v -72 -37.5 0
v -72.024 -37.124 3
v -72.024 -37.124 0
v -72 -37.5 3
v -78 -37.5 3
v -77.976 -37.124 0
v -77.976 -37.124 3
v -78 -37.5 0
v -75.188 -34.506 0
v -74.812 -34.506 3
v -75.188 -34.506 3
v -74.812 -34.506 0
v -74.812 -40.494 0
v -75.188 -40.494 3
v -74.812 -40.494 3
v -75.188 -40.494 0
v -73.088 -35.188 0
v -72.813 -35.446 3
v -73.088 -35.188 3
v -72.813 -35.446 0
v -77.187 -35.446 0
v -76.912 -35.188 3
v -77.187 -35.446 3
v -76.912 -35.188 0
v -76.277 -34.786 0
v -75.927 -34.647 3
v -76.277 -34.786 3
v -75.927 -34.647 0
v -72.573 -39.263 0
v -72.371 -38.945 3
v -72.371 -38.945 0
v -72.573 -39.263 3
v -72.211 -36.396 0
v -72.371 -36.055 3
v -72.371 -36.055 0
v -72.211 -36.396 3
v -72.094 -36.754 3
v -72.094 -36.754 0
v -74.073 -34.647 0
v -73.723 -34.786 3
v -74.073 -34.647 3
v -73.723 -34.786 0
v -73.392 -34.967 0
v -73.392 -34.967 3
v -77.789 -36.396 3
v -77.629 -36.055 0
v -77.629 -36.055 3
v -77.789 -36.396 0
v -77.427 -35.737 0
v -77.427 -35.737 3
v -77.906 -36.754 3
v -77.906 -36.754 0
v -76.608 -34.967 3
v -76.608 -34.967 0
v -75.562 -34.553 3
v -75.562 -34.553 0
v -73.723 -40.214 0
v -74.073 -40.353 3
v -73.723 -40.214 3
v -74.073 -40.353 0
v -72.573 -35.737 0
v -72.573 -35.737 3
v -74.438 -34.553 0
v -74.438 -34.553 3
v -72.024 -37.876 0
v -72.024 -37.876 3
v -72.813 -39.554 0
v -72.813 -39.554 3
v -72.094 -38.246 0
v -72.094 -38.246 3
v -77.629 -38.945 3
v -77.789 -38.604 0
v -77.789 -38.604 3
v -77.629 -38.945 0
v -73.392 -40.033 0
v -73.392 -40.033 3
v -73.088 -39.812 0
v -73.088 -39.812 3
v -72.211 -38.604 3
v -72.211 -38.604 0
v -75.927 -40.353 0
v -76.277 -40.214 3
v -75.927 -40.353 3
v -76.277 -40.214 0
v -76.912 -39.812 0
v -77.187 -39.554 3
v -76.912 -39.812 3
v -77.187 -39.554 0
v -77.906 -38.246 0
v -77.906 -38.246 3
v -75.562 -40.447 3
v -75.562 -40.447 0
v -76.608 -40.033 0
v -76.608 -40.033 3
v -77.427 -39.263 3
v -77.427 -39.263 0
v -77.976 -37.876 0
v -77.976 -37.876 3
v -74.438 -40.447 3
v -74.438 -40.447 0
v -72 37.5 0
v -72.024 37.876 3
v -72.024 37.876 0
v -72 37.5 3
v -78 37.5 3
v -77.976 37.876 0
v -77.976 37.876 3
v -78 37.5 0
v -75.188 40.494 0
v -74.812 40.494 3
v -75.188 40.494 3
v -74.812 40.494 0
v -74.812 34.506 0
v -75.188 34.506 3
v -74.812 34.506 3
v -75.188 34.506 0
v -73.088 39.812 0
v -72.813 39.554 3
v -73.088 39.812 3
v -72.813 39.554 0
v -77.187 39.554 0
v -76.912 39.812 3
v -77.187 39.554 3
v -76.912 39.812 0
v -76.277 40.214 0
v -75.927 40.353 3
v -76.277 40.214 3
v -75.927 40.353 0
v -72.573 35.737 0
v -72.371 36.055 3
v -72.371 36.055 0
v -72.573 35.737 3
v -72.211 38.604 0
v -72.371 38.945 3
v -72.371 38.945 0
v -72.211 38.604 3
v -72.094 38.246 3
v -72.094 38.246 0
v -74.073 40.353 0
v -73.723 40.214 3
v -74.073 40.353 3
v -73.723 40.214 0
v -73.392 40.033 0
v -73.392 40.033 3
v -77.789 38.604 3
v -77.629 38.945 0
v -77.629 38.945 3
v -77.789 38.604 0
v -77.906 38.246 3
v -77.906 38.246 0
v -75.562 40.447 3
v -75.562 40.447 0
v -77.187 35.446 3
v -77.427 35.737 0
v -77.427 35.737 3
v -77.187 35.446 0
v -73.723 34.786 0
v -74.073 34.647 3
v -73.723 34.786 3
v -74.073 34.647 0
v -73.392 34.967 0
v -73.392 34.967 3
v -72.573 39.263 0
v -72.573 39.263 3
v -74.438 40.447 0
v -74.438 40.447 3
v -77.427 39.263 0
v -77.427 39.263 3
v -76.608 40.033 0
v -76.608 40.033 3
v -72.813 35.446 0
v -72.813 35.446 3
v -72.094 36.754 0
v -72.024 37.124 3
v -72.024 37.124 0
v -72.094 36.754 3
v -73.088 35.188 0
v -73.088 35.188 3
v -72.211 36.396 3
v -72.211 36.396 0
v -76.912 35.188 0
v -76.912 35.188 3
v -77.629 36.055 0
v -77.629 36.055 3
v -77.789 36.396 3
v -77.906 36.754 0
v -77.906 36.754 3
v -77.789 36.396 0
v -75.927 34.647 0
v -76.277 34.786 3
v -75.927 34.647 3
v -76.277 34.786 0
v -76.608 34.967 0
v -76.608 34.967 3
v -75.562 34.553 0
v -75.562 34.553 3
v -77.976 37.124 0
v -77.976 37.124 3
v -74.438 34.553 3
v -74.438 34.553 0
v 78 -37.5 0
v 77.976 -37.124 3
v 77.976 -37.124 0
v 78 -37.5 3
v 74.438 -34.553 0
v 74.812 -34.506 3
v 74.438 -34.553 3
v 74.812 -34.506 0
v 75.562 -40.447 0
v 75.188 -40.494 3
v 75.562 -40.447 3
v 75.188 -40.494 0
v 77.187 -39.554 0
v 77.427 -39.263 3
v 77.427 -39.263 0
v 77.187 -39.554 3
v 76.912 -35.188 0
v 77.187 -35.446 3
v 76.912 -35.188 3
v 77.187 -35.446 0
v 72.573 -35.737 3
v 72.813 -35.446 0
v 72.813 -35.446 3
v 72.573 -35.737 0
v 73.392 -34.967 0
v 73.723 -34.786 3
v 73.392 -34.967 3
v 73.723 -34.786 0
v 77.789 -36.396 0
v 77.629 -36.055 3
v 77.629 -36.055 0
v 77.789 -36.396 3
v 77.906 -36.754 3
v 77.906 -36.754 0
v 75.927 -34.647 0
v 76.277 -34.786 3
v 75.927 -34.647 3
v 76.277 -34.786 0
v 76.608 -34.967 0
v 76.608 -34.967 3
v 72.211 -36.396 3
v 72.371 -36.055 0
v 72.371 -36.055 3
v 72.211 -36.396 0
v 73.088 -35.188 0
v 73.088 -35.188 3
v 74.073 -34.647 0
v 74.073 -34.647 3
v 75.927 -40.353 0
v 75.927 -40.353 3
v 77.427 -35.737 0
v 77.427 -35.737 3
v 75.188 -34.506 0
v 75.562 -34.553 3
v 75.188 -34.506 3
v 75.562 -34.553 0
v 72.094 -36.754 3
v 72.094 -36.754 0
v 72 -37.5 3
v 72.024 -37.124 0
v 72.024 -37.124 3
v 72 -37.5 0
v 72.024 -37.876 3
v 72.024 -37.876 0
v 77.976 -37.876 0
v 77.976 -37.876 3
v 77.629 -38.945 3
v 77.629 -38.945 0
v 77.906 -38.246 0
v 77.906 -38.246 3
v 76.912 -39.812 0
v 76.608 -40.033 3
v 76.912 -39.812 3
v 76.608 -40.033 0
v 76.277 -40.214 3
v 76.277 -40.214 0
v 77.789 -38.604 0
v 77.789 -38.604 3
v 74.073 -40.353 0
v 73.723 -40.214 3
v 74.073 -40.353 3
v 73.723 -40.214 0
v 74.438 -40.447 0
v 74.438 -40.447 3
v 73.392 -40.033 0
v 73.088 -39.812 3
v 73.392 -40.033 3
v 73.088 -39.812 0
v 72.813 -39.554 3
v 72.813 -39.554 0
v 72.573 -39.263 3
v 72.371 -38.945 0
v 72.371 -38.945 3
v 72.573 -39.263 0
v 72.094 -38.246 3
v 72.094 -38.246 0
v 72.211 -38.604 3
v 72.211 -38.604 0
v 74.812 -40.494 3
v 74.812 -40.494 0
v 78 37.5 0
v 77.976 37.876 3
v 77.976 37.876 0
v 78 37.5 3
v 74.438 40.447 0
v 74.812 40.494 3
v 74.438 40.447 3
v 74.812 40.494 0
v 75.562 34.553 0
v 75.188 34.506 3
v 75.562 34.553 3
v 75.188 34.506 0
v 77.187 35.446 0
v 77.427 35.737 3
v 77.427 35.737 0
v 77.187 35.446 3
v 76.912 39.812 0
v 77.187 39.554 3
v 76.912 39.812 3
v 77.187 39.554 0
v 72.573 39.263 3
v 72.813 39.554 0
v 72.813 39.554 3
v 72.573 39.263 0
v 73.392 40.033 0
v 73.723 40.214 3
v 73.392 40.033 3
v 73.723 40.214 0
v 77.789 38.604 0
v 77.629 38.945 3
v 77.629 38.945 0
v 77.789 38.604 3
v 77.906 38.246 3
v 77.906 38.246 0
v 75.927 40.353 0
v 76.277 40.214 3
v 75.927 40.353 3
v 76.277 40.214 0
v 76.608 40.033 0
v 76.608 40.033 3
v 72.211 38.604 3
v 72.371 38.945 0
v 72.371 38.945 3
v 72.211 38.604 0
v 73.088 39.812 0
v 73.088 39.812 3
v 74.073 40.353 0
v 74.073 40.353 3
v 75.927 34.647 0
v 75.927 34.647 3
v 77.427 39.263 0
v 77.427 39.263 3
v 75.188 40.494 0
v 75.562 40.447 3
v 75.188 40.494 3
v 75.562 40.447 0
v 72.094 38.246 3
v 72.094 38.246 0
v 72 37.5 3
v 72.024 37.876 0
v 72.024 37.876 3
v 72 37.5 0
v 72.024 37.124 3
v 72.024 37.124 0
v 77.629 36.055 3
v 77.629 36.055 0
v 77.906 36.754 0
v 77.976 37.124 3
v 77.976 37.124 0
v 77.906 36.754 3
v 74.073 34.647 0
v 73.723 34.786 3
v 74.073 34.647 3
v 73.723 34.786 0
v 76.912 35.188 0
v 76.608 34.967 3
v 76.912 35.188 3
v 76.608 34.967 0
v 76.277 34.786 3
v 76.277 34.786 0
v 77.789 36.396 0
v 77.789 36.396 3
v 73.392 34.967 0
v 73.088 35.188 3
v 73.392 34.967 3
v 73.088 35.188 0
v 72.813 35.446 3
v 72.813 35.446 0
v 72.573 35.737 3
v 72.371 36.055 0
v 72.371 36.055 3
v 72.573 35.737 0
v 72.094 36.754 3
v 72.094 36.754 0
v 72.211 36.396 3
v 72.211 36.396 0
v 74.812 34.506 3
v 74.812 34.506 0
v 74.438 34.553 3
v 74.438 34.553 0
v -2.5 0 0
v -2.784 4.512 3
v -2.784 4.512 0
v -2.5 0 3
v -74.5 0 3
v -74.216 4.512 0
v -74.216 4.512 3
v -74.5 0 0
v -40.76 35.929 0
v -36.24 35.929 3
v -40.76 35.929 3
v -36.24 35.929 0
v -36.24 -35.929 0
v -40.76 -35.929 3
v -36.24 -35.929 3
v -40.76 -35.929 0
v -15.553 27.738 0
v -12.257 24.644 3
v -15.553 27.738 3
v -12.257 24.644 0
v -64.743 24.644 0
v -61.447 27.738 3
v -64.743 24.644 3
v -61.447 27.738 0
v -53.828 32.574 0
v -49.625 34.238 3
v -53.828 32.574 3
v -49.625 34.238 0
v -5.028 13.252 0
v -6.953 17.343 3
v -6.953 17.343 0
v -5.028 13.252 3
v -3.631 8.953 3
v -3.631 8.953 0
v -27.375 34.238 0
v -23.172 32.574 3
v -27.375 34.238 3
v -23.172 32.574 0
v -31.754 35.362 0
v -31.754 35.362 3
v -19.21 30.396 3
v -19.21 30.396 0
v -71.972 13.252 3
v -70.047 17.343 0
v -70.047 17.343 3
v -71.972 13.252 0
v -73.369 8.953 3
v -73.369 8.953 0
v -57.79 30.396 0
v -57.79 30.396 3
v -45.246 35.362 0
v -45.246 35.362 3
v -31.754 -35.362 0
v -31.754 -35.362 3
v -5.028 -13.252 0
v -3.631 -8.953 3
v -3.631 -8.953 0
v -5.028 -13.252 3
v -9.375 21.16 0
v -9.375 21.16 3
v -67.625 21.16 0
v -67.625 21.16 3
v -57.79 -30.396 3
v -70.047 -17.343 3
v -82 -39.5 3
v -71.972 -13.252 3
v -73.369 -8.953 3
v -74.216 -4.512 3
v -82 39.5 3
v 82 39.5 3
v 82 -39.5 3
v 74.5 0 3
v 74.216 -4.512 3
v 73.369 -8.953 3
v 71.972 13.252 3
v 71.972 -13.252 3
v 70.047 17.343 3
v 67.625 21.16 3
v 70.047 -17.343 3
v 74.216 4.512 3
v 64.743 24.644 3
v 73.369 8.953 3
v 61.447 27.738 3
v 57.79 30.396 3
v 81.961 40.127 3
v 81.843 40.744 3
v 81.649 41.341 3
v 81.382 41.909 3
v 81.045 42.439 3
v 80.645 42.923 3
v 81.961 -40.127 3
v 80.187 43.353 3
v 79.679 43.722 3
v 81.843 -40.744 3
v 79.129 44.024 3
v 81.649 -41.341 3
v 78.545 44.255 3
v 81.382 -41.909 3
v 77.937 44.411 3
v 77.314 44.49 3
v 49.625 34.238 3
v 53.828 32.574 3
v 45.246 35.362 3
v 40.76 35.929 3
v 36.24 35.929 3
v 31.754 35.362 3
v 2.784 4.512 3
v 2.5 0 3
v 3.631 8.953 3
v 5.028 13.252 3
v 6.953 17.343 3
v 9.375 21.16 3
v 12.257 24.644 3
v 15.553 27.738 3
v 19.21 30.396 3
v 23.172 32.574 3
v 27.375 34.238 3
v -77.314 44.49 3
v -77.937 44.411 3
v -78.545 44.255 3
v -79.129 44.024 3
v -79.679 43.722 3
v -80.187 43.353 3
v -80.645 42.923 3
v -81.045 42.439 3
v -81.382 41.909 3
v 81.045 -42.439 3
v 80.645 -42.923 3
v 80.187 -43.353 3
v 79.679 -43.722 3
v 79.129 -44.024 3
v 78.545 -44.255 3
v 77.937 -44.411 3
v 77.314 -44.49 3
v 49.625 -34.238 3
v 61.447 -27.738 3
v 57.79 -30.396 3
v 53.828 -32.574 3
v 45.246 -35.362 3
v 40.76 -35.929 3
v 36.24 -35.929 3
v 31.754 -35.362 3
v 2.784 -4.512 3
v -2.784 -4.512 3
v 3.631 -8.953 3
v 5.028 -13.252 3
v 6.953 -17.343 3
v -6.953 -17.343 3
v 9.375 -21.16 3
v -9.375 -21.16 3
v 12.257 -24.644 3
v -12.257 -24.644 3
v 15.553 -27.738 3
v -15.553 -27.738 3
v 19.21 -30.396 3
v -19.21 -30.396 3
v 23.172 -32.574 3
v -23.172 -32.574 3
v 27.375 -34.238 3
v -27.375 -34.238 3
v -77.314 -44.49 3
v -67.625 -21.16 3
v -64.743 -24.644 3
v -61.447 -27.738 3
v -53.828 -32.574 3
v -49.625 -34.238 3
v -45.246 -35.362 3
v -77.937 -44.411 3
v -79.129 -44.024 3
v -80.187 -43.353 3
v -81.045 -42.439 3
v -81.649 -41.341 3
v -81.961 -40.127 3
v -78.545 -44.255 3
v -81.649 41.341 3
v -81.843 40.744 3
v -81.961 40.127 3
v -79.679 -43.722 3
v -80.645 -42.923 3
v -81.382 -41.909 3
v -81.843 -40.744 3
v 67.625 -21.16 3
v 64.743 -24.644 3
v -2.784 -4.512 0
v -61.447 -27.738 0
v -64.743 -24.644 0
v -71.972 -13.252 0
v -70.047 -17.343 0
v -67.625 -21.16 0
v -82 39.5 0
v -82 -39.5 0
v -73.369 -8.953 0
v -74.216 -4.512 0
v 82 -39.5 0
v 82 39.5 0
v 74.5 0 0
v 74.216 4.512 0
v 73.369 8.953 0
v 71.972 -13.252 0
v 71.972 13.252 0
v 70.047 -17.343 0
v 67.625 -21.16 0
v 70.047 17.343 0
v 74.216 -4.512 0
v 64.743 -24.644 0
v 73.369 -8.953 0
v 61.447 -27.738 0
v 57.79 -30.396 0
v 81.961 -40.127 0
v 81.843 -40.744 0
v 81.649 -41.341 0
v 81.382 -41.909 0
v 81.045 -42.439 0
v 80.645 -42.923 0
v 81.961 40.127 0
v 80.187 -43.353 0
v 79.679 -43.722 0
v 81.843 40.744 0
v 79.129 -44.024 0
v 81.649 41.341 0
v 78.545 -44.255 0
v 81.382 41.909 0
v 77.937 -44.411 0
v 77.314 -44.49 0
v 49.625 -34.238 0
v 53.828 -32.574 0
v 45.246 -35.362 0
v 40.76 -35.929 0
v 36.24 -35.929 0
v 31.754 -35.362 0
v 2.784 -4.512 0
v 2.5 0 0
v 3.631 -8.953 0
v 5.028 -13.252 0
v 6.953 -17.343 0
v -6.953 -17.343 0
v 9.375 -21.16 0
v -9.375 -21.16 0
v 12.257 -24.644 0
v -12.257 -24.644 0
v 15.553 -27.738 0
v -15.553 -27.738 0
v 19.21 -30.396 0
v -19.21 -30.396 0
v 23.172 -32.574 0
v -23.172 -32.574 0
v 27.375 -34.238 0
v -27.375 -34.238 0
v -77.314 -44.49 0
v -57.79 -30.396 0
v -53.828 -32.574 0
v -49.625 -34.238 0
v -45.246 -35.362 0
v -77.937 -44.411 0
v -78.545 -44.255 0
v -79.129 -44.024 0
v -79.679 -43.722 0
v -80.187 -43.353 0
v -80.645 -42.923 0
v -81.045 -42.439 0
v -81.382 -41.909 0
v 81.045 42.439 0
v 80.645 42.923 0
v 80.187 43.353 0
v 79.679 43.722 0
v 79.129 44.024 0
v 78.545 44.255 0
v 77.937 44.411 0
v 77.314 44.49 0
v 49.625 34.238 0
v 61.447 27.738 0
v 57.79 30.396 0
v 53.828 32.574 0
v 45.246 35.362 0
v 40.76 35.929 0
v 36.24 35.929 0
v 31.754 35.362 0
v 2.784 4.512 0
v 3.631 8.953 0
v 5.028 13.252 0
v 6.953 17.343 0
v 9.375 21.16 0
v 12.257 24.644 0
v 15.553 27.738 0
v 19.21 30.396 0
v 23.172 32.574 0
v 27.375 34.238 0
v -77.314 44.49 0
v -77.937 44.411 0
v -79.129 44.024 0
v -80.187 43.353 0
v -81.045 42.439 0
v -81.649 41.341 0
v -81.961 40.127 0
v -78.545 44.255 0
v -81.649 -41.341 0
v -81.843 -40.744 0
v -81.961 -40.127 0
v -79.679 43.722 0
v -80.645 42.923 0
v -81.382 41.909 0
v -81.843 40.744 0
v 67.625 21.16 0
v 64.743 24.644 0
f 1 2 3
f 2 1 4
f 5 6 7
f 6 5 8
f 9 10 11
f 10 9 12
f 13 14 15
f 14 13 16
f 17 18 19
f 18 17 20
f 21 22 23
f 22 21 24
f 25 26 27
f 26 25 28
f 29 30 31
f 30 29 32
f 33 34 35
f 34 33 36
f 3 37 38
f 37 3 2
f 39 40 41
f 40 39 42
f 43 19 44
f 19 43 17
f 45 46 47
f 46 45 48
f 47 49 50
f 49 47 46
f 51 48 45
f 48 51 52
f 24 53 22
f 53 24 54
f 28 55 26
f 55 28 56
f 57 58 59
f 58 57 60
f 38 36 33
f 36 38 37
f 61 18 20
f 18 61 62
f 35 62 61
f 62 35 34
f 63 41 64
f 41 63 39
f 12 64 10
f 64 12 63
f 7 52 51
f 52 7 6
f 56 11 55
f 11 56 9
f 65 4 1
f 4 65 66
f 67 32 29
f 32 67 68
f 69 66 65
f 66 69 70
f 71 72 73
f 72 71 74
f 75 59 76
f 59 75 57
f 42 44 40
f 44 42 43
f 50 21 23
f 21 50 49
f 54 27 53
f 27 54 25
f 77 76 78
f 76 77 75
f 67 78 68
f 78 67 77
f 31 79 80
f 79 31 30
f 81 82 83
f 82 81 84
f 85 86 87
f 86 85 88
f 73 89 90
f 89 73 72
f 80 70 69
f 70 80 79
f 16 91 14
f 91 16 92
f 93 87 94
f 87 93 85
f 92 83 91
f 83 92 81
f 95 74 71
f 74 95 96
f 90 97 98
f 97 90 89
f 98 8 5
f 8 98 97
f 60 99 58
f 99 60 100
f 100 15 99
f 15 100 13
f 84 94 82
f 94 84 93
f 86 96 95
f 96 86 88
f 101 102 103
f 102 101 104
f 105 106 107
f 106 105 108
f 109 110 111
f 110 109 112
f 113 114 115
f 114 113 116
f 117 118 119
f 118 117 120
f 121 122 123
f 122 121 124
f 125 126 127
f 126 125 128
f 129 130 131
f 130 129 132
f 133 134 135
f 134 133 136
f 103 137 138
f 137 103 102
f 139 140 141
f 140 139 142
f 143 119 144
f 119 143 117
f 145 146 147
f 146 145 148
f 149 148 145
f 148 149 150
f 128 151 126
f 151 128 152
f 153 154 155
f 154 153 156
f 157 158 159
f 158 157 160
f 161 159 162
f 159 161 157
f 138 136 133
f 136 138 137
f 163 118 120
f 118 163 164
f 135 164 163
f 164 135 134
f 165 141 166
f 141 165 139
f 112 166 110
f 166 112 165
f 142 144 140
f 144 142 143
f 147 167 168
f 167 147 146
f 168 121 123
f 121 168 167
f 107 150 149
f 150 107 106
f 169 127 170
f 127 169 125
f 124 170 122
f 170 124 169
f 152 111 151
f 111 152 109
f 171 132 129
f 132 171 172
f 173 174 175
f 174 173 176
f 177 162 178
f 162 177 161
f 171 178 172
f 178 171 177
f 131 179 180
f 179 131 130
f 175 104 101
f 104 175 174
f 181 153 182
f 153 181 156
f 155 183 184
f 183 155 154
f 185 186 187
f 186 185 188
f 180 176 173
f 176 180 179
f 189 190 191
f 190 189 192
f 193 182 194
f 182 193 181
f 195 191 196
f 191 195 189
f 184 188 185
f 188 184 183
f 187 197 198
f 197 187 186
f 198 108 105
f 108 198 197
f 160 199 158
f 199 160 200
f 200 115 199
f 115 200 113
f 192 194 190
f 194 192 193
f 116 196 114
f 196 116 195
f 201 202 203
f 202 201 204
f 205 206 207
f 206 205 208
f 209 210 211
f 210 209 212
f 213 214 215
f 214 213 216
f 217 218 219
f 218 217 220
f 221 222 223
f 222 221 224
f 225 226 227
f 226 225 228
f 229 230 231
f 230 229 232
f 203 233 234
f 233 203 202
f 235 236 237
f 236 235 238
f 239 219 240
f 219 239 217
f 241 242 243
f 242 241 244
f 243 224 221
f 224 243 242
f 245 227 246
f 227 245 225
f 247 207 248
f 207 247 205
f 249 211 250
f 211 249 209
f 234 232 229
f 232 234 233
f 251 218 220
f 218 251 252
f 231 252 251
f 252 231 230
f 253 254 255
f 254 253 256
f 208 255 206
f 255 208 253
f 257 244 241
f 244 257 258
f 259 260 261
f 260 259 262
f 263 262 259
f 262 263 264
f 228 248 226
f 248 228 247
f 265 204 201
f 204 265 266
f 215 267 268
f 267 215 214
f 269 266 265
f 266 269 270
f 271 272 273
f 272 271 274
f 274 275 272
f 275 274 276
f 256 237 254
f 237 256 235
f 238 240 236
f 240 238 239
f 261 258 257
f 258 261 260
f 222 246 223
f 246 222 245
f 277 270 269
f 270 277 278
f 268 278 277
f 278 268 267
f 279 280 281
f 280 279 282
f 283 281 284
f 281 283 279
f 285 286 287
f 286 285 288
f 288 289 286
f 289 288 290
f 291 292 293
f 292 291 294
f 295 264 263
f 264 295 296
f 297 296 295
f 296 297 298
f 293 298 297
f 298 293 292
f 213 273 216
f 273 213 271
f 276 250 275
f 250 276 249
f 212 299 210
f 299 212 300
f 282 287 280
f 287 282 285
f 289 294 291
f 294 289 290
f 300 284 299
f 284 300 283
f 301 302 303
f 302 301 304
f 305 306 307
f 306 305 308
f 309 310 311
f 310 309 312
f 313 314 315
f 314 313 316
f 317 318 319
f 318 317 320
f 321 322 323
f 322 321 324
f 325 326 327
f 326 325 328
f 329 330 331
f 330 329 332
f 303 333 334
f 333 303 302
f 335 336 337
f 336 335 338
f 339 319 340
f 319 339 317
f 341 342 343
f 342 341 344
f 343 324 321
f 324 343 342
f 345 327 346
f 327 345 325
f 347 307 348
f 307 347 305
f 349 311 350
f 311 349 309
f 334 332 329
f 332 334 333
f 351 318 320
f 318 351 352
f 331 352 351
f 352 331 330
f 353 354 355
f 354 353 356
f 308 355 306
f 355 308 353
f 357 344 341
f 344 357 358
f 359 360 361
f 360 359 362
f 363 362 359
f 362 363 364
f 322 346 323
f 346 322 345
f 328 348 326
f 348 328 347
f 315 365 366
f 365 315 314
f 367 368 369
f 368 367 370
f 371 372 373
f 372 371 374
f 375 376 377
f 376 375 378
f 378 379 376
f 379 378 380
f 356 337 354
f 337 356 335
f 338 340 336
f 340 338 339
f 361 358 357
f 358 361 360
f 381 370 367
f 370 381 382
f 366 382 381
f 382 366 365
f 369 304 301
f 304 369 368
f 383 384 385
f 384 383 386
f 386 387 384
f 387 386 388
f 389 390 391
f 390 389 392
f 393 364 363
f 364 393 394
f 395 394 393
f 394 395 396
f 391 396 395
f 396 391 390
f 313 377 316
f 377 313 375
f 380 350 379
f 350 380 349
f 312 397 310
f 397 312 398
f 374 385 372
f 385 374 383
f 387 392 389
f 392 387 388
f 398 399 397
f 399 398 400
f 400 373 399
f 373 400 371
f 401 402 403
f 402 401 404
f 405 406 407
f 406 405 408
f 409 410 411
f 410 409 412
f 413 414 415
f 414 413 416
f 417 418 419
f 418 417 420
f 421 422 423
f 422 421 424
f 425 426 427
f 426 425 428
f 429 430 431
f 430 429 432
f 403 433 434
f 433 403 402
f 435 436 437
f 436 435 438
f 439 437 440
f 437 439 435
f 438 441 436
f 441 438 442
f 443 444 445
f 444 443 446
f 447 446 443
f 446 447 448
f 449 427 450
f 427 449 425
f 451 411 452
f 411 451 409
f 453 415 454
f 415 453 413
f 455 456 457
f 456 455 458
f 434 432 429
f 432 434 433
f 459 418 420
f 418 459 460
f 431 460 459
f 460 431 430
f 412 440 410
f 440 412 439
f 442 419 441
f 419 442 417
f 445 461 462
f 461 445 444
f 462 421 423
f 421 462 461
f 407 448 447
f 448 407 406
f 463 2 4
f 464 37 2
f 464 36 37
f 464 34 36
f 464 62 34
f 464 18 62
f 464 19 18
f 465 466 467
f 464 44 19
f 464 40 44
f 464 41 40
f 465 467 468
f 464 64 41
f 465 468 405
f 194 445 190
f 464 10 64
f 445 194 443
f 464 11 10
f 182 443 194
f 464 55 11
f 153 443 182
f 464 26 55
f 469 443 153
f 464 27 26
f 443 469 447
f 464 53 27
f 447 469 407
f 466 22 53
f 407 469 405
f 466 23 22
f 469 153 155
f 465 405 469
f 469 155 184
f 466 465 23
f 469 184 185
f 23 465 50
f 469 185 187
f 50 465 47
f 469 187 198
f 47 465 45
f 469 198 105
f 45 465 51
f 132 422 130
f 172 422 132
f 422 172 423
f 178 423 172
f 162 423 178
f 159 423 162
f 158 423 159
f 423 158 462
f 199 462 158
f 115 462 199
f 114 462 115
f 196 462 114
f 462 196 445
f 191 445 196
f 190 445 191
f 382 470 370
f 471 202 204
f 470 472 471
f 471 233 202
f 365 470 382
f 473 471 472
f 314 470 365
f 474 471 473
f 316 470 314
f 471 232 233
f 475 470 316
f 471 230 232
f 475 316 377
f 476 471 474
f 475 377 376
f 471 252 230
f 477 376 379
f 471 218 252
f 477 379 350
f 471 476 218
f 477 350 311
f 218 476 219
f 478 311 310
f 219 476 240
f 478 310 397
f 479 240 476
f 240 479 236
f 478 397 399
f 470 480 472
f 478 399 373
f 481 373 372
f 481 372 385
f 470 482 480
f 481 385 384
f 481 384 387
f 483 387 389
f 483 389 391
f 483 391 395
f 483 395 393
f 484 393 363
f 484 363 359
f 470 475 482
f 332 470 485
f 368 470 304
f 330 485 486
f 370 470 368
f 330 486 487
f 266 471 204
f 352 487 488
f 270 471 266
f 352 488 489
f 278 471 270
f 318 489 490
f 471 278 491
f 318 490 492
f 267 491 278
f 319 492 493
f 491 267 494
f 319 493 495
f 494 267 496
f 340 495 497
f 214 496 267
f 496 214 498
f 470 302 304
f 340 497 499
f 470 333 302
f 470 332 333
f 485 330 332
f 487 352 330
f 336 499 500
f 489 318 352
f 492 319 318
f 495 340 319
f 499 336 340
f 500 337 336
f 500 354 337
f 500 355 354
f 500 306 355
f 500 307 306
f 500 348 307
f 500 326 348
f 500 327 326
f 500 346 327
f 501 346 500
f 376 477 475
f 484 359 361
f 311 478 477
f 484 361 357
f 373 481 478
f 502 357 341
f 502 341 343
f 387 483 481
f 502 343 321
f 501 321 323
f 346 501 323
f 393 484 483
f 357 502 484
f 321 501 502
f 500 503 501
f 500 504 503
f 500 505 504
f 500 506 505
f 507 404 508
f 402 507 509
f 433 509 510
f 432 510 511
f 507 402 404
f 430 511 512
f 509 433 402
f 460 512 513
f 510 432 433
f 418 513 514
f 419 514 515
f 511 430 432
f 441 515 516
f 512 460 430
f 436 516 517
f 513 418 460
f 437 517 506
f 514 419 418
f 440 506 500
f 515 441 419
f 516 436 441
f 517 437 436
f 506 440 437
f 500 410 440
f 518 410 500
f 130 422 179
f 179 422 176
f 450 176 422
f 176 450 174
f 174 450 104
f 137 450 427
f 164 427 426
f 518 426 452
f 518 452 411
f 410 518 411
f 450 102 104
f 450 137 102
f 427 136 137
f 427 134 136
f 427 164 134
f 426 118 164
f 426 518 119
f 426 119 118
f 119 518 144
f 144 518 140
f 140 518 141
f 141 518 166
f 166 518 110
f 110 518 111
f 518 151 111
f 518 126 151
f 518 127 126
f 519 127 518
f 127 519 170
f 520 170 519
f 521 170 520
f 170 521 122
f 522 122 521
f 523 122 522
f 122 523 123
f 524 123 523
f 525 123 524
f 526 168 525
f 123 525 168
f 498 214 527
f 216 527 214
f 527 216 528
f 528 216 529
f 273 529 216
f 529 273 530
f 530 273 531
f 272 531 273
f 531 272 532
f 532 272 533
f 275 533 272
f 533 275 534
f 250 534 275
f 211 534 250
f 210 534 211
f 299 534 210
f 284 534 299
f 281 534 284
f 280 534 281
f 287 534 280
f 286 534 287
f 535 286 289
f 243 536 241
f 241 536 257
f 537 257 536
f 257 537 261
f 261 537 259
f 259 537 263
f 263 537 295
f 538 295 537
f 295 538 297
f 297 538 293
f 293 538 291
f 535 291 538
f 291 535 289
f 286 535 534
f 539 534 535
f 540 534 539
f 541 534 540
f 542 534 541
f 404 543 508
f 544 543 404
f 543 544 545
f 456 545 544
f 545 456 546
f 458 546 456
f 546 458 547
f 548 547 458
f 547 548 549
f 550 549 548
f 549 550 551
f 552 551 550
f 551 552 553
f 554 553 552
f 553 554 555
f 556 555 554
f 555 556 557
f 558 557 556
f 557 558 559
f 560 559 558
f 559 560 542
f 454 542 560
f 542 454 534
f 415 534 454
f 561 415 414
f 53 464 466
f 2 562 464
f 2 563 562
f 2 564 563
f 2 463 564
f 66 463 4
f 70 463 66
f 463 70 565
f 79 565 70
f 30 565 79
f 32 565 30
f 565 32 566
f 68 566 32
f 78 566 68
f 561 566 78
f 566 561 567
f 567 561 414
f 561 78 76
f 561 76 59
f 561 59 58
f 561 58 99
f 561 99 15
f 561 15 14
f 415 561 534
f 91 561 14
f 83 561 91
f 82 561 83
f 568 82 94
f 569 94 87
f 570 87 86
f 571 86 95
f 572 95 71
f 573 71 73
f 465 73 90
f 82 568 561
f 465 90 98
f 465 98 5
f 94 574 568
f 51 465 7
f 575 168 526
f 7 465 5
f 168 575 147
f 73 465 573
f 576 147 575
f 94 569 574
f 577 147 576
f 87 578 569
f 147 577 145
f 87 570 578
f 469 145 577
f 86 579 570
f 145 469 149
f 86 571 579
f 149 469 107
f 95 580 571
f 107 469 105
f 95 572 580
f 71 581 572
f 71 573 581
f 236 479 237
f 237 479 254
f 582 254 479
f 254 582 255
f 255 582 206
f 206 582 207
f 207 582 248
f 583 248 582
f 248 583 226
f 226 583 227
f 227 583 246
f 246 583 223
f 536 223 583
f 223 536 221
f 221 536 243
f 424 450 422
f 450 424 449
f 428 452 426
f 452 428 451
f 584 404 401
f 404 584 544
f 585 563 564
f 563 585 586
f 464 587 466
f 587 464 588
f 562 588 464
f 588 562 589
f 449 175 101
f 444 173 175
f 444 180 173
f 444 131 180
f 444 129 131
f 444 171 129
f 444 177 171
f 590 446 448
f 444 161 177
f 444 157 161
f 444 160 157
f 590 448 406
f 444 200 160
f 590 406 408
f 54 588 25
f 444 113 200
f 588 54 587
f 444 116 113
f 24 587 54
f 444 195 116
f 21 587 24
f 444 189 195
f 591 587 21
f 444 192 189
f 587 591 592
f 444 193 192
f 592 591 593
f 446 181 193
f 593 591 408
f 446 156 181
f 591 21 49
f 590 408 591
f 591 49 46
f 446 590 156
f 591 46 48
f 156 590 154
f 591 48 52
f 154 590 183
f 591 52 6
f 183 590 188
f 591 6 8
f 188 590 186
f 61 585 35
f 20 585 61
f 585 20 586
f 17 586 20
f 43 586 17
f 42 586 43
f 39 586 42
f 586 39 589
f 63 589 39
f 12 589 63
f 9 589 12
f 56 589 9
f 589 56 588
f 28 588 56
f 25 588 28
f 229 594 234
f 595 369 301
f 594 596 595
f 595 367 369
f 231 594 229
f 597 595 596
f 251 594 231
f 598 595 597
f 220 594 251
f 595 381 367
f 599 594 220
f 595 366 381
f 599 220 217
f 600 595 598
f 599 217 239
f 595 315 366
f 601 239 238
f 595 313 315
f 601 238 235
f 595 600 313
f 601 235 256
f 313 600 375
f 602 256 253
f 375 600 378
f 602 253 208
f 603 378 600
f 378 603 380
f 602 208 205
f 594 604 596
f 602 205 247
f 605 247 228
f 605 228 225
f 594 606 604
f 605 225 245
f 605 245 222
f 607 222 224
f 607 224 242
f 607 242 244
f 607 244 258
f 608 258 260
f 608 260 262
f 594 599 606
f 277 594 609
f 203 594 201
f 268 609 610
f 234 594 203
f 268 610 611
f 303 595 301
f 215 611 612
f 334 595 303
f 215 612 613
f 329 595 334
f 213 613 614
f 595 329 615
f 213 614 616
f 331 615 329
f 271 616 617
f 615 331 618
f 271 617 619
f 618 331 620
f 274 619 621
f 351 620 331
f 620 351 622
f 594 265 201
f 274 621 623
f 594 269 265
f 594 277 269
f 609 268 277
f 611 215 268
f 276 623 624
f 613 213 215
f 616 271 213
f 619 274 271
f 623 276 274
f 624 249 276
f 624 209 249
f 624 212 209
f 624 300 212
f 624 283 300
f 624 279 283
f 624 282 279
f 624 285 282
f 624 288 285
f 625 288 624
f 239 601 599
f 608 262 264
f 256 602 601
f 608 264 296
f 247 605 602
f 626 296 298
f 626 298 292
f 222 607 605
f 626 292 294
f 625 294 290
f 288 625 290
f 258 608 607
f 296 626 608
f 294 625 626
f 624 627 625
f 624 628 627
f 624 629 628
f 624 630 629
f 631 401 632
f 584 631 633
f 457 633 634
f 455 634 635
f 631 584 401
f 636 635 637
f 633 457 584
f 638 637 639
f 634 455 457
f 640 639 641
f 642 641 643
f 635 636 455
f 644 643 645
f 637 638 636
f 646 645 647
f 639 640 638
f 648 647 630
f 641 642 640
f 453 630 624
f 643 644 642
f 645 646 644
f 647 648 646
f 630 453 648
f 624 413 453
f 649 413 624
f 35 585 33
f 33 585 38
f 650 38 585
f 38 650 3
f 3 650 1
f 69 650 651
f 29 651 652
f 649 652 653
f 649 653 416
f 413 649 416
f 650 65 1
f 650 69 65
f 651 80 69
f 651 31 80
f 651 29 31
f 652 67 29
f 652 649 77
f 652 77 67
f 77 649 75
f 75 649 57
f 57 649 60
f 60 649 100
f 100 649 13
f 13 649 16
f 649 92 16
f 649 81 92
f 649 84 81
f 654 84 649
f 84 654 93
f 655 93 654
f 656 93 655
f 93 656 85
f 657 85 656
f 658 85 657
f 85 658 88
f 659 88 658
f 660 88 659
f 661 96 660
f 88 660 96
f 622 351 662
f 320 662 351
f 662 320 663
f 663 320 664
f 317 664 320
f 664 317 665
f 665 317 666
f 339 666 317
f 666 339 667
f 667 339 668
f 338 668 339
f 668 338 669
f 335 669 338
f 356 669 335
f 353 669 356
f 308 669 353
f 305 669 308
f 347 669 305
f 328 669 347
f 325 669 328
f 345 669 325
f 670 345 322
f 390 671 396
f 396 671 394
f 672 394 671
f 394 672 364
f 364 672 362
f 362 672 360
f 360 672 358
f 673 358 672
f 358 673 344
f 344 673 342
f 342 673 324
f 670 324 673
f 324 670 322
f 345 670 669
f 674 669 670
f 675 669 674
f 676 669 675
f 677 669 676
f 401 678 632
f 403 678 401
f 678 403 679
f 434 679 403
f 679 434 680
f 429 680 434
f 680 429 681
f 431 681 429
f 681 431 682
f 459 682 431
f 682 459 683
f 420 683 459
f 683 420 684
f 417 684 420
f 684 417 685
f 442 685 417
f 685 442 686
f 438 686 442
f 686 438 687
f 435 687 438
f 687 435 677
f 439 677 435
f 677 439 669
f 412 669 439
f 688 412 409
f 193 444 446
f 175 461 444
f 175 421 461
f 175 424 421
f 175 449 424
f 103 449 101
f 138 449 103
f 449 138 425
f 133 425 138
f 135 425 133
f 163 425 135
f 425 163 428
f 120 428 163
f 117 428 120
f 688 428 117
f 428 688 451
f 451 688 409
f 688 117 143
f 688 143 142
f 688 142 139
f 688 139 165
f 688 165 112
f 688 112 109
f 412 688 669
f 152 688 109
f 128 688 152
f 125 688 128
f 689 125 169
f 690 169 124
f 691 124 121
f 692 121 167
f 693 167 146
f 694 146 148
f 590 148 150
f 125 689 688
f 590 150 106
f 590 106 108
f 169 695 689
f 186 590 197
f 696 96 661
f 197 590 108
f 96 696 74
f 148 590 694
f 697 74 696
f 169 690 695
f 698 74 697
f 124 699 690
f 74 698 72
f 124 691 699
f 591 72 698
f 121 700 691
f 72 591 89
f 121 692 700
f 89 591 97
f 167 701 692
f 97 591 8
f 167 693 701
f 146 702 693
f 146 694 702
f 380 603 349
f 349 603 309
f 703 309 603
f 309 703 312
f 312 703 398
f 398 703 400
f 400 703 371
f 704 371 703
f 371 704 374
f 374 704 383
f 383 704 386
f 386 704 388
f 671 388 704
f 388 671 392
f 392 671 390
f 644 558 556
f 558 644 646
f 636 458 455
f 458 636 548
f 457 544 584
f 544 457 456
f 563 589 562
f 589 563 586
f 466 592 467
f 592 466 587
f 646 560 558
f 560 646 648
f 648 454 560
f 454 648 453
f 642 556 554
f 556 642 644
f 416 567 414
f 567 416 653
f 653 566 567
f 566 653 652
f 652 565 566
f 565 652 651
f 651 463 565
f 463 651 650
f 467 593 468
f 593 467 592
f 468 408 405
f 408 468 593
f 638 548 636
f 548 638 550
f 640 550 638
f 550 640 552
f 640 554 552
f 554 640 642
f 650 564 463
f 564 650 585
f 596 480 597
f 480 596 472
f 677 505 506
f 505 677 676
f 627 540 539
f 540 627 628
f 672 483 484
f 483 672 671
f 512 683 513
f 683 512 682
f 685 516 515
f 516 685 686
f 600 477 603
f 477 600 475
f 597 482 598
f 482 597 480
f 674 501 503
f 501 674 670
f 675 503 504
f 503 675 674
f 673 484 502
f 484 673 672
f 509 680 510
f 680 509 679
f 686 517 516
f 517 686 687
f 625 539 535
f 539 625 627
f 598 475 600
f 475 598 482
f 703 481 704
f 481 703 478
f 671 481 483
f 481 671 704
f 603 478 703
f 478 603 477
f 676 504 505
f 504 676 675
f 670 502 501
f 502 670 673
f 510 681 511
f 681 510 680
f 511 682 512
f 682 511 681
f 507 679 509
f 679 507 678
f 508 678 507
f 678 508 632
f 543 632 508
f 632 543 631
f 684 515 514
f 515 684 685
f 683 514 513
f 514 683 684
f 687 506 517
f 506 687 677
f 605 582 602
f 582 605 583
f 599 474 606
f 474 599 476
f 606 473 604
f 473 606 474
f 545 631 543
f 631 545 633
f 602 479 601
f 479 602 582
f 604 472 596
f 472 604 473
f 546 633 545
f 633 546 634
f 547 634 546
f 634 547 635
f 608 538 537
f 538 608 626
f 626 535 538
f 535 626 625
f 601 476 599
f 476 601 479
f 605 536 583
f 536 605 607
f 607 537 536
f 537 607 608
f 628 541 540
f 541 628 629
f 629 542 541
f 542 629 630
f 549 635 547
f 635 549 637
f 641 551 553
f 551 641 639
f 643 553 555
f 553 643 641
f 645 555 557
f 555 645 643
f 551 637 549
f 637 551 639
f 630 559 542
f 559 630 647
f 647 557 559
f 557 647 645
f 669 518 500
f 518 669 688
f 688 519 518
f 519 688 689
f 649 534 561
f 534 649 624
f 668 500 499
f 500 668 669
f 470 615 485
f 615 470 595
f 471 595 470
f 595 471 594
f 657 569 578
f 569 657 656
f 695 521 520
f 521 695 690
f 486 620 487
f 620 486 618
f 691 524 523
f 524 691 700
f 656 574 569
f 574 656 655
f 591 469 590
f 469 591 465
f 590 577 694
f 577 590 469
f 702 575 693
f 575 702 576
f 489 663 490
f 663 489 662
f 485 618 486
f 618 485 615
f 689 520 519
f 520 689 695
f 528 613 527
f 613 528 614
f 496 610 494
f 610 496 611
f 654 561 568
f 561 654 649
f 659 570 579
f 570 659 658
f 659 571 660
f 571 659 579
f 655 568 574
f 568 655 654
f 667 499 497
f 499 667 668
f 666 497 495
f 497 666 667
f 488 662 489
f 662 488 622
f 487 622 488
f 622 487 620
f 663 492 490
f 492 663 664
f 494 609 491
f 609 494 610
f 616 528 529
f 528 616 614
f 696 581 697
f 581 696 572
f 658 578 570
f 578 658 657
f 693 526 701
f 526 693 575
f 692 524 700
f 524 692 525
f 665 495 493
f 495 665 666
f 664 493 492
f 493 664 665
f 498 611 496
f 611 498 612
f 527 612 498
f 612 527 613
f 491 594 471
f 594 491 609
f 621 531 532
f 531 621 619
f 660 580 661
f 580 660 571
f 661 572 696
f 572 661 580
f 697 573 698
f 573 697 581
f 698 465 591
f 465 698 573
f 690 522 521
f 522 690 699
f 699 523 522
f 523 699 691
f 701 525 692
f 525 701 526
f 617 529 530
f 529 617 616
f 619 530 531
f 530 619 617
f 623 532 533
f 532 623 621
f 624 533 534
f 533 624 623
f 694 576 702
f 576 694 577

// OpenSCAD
$fn = 50;


difference() {
	union() {
		hull() {
			translate(v = [-77.0000000000, 39.5000000000, 0]) {
				cylinder(h = 3, r = 5);
			}
			translate(v = [77.0000000000, 39.5000000000, 0]) {
				cylinder(h = 3, r = 5);
			}
			translate(v = [-77.0000000000, -39.5000000000, 0]) {
				cylinder(h = 3, r = 5);
			}
			translate(v = [77.0000000000, -39.5000000000, 0]) {
				cylinder(h = 3, r = 5);
			}
		}
	}
	union() {
		#translate(v = [-75.0000000000, -37.5000000000, -100.0000000000]) {
			cylinder(h = 200, r = 3.0000000000);
		}
		#translate(v = [-75.0000000000, 37.5000000000, -100.0000000000]) {
			cylinder(h = 200, r = 3.0000000000);
		}
		#translate(v = [75.0000000000, -37.5000000000, -100.0000000000]) {
			cylinder(h = 200, r = 3.0000000000);
		}
		#translate(v = [75.0000000000, 37.5000000000, -100.0000000000]) {
			cylinder(h = 200, r = 3.0000000000);
		}
		#translate(v = [-38.5000000000, 0, 0]) {
			cylinder(h = 3, r = 36.0000000000);
		}
		#translate(v = [38.5000000000, 0, 0]) {
			cylinder(h = 3, r = 36.0000000000);
		}
	}
}
